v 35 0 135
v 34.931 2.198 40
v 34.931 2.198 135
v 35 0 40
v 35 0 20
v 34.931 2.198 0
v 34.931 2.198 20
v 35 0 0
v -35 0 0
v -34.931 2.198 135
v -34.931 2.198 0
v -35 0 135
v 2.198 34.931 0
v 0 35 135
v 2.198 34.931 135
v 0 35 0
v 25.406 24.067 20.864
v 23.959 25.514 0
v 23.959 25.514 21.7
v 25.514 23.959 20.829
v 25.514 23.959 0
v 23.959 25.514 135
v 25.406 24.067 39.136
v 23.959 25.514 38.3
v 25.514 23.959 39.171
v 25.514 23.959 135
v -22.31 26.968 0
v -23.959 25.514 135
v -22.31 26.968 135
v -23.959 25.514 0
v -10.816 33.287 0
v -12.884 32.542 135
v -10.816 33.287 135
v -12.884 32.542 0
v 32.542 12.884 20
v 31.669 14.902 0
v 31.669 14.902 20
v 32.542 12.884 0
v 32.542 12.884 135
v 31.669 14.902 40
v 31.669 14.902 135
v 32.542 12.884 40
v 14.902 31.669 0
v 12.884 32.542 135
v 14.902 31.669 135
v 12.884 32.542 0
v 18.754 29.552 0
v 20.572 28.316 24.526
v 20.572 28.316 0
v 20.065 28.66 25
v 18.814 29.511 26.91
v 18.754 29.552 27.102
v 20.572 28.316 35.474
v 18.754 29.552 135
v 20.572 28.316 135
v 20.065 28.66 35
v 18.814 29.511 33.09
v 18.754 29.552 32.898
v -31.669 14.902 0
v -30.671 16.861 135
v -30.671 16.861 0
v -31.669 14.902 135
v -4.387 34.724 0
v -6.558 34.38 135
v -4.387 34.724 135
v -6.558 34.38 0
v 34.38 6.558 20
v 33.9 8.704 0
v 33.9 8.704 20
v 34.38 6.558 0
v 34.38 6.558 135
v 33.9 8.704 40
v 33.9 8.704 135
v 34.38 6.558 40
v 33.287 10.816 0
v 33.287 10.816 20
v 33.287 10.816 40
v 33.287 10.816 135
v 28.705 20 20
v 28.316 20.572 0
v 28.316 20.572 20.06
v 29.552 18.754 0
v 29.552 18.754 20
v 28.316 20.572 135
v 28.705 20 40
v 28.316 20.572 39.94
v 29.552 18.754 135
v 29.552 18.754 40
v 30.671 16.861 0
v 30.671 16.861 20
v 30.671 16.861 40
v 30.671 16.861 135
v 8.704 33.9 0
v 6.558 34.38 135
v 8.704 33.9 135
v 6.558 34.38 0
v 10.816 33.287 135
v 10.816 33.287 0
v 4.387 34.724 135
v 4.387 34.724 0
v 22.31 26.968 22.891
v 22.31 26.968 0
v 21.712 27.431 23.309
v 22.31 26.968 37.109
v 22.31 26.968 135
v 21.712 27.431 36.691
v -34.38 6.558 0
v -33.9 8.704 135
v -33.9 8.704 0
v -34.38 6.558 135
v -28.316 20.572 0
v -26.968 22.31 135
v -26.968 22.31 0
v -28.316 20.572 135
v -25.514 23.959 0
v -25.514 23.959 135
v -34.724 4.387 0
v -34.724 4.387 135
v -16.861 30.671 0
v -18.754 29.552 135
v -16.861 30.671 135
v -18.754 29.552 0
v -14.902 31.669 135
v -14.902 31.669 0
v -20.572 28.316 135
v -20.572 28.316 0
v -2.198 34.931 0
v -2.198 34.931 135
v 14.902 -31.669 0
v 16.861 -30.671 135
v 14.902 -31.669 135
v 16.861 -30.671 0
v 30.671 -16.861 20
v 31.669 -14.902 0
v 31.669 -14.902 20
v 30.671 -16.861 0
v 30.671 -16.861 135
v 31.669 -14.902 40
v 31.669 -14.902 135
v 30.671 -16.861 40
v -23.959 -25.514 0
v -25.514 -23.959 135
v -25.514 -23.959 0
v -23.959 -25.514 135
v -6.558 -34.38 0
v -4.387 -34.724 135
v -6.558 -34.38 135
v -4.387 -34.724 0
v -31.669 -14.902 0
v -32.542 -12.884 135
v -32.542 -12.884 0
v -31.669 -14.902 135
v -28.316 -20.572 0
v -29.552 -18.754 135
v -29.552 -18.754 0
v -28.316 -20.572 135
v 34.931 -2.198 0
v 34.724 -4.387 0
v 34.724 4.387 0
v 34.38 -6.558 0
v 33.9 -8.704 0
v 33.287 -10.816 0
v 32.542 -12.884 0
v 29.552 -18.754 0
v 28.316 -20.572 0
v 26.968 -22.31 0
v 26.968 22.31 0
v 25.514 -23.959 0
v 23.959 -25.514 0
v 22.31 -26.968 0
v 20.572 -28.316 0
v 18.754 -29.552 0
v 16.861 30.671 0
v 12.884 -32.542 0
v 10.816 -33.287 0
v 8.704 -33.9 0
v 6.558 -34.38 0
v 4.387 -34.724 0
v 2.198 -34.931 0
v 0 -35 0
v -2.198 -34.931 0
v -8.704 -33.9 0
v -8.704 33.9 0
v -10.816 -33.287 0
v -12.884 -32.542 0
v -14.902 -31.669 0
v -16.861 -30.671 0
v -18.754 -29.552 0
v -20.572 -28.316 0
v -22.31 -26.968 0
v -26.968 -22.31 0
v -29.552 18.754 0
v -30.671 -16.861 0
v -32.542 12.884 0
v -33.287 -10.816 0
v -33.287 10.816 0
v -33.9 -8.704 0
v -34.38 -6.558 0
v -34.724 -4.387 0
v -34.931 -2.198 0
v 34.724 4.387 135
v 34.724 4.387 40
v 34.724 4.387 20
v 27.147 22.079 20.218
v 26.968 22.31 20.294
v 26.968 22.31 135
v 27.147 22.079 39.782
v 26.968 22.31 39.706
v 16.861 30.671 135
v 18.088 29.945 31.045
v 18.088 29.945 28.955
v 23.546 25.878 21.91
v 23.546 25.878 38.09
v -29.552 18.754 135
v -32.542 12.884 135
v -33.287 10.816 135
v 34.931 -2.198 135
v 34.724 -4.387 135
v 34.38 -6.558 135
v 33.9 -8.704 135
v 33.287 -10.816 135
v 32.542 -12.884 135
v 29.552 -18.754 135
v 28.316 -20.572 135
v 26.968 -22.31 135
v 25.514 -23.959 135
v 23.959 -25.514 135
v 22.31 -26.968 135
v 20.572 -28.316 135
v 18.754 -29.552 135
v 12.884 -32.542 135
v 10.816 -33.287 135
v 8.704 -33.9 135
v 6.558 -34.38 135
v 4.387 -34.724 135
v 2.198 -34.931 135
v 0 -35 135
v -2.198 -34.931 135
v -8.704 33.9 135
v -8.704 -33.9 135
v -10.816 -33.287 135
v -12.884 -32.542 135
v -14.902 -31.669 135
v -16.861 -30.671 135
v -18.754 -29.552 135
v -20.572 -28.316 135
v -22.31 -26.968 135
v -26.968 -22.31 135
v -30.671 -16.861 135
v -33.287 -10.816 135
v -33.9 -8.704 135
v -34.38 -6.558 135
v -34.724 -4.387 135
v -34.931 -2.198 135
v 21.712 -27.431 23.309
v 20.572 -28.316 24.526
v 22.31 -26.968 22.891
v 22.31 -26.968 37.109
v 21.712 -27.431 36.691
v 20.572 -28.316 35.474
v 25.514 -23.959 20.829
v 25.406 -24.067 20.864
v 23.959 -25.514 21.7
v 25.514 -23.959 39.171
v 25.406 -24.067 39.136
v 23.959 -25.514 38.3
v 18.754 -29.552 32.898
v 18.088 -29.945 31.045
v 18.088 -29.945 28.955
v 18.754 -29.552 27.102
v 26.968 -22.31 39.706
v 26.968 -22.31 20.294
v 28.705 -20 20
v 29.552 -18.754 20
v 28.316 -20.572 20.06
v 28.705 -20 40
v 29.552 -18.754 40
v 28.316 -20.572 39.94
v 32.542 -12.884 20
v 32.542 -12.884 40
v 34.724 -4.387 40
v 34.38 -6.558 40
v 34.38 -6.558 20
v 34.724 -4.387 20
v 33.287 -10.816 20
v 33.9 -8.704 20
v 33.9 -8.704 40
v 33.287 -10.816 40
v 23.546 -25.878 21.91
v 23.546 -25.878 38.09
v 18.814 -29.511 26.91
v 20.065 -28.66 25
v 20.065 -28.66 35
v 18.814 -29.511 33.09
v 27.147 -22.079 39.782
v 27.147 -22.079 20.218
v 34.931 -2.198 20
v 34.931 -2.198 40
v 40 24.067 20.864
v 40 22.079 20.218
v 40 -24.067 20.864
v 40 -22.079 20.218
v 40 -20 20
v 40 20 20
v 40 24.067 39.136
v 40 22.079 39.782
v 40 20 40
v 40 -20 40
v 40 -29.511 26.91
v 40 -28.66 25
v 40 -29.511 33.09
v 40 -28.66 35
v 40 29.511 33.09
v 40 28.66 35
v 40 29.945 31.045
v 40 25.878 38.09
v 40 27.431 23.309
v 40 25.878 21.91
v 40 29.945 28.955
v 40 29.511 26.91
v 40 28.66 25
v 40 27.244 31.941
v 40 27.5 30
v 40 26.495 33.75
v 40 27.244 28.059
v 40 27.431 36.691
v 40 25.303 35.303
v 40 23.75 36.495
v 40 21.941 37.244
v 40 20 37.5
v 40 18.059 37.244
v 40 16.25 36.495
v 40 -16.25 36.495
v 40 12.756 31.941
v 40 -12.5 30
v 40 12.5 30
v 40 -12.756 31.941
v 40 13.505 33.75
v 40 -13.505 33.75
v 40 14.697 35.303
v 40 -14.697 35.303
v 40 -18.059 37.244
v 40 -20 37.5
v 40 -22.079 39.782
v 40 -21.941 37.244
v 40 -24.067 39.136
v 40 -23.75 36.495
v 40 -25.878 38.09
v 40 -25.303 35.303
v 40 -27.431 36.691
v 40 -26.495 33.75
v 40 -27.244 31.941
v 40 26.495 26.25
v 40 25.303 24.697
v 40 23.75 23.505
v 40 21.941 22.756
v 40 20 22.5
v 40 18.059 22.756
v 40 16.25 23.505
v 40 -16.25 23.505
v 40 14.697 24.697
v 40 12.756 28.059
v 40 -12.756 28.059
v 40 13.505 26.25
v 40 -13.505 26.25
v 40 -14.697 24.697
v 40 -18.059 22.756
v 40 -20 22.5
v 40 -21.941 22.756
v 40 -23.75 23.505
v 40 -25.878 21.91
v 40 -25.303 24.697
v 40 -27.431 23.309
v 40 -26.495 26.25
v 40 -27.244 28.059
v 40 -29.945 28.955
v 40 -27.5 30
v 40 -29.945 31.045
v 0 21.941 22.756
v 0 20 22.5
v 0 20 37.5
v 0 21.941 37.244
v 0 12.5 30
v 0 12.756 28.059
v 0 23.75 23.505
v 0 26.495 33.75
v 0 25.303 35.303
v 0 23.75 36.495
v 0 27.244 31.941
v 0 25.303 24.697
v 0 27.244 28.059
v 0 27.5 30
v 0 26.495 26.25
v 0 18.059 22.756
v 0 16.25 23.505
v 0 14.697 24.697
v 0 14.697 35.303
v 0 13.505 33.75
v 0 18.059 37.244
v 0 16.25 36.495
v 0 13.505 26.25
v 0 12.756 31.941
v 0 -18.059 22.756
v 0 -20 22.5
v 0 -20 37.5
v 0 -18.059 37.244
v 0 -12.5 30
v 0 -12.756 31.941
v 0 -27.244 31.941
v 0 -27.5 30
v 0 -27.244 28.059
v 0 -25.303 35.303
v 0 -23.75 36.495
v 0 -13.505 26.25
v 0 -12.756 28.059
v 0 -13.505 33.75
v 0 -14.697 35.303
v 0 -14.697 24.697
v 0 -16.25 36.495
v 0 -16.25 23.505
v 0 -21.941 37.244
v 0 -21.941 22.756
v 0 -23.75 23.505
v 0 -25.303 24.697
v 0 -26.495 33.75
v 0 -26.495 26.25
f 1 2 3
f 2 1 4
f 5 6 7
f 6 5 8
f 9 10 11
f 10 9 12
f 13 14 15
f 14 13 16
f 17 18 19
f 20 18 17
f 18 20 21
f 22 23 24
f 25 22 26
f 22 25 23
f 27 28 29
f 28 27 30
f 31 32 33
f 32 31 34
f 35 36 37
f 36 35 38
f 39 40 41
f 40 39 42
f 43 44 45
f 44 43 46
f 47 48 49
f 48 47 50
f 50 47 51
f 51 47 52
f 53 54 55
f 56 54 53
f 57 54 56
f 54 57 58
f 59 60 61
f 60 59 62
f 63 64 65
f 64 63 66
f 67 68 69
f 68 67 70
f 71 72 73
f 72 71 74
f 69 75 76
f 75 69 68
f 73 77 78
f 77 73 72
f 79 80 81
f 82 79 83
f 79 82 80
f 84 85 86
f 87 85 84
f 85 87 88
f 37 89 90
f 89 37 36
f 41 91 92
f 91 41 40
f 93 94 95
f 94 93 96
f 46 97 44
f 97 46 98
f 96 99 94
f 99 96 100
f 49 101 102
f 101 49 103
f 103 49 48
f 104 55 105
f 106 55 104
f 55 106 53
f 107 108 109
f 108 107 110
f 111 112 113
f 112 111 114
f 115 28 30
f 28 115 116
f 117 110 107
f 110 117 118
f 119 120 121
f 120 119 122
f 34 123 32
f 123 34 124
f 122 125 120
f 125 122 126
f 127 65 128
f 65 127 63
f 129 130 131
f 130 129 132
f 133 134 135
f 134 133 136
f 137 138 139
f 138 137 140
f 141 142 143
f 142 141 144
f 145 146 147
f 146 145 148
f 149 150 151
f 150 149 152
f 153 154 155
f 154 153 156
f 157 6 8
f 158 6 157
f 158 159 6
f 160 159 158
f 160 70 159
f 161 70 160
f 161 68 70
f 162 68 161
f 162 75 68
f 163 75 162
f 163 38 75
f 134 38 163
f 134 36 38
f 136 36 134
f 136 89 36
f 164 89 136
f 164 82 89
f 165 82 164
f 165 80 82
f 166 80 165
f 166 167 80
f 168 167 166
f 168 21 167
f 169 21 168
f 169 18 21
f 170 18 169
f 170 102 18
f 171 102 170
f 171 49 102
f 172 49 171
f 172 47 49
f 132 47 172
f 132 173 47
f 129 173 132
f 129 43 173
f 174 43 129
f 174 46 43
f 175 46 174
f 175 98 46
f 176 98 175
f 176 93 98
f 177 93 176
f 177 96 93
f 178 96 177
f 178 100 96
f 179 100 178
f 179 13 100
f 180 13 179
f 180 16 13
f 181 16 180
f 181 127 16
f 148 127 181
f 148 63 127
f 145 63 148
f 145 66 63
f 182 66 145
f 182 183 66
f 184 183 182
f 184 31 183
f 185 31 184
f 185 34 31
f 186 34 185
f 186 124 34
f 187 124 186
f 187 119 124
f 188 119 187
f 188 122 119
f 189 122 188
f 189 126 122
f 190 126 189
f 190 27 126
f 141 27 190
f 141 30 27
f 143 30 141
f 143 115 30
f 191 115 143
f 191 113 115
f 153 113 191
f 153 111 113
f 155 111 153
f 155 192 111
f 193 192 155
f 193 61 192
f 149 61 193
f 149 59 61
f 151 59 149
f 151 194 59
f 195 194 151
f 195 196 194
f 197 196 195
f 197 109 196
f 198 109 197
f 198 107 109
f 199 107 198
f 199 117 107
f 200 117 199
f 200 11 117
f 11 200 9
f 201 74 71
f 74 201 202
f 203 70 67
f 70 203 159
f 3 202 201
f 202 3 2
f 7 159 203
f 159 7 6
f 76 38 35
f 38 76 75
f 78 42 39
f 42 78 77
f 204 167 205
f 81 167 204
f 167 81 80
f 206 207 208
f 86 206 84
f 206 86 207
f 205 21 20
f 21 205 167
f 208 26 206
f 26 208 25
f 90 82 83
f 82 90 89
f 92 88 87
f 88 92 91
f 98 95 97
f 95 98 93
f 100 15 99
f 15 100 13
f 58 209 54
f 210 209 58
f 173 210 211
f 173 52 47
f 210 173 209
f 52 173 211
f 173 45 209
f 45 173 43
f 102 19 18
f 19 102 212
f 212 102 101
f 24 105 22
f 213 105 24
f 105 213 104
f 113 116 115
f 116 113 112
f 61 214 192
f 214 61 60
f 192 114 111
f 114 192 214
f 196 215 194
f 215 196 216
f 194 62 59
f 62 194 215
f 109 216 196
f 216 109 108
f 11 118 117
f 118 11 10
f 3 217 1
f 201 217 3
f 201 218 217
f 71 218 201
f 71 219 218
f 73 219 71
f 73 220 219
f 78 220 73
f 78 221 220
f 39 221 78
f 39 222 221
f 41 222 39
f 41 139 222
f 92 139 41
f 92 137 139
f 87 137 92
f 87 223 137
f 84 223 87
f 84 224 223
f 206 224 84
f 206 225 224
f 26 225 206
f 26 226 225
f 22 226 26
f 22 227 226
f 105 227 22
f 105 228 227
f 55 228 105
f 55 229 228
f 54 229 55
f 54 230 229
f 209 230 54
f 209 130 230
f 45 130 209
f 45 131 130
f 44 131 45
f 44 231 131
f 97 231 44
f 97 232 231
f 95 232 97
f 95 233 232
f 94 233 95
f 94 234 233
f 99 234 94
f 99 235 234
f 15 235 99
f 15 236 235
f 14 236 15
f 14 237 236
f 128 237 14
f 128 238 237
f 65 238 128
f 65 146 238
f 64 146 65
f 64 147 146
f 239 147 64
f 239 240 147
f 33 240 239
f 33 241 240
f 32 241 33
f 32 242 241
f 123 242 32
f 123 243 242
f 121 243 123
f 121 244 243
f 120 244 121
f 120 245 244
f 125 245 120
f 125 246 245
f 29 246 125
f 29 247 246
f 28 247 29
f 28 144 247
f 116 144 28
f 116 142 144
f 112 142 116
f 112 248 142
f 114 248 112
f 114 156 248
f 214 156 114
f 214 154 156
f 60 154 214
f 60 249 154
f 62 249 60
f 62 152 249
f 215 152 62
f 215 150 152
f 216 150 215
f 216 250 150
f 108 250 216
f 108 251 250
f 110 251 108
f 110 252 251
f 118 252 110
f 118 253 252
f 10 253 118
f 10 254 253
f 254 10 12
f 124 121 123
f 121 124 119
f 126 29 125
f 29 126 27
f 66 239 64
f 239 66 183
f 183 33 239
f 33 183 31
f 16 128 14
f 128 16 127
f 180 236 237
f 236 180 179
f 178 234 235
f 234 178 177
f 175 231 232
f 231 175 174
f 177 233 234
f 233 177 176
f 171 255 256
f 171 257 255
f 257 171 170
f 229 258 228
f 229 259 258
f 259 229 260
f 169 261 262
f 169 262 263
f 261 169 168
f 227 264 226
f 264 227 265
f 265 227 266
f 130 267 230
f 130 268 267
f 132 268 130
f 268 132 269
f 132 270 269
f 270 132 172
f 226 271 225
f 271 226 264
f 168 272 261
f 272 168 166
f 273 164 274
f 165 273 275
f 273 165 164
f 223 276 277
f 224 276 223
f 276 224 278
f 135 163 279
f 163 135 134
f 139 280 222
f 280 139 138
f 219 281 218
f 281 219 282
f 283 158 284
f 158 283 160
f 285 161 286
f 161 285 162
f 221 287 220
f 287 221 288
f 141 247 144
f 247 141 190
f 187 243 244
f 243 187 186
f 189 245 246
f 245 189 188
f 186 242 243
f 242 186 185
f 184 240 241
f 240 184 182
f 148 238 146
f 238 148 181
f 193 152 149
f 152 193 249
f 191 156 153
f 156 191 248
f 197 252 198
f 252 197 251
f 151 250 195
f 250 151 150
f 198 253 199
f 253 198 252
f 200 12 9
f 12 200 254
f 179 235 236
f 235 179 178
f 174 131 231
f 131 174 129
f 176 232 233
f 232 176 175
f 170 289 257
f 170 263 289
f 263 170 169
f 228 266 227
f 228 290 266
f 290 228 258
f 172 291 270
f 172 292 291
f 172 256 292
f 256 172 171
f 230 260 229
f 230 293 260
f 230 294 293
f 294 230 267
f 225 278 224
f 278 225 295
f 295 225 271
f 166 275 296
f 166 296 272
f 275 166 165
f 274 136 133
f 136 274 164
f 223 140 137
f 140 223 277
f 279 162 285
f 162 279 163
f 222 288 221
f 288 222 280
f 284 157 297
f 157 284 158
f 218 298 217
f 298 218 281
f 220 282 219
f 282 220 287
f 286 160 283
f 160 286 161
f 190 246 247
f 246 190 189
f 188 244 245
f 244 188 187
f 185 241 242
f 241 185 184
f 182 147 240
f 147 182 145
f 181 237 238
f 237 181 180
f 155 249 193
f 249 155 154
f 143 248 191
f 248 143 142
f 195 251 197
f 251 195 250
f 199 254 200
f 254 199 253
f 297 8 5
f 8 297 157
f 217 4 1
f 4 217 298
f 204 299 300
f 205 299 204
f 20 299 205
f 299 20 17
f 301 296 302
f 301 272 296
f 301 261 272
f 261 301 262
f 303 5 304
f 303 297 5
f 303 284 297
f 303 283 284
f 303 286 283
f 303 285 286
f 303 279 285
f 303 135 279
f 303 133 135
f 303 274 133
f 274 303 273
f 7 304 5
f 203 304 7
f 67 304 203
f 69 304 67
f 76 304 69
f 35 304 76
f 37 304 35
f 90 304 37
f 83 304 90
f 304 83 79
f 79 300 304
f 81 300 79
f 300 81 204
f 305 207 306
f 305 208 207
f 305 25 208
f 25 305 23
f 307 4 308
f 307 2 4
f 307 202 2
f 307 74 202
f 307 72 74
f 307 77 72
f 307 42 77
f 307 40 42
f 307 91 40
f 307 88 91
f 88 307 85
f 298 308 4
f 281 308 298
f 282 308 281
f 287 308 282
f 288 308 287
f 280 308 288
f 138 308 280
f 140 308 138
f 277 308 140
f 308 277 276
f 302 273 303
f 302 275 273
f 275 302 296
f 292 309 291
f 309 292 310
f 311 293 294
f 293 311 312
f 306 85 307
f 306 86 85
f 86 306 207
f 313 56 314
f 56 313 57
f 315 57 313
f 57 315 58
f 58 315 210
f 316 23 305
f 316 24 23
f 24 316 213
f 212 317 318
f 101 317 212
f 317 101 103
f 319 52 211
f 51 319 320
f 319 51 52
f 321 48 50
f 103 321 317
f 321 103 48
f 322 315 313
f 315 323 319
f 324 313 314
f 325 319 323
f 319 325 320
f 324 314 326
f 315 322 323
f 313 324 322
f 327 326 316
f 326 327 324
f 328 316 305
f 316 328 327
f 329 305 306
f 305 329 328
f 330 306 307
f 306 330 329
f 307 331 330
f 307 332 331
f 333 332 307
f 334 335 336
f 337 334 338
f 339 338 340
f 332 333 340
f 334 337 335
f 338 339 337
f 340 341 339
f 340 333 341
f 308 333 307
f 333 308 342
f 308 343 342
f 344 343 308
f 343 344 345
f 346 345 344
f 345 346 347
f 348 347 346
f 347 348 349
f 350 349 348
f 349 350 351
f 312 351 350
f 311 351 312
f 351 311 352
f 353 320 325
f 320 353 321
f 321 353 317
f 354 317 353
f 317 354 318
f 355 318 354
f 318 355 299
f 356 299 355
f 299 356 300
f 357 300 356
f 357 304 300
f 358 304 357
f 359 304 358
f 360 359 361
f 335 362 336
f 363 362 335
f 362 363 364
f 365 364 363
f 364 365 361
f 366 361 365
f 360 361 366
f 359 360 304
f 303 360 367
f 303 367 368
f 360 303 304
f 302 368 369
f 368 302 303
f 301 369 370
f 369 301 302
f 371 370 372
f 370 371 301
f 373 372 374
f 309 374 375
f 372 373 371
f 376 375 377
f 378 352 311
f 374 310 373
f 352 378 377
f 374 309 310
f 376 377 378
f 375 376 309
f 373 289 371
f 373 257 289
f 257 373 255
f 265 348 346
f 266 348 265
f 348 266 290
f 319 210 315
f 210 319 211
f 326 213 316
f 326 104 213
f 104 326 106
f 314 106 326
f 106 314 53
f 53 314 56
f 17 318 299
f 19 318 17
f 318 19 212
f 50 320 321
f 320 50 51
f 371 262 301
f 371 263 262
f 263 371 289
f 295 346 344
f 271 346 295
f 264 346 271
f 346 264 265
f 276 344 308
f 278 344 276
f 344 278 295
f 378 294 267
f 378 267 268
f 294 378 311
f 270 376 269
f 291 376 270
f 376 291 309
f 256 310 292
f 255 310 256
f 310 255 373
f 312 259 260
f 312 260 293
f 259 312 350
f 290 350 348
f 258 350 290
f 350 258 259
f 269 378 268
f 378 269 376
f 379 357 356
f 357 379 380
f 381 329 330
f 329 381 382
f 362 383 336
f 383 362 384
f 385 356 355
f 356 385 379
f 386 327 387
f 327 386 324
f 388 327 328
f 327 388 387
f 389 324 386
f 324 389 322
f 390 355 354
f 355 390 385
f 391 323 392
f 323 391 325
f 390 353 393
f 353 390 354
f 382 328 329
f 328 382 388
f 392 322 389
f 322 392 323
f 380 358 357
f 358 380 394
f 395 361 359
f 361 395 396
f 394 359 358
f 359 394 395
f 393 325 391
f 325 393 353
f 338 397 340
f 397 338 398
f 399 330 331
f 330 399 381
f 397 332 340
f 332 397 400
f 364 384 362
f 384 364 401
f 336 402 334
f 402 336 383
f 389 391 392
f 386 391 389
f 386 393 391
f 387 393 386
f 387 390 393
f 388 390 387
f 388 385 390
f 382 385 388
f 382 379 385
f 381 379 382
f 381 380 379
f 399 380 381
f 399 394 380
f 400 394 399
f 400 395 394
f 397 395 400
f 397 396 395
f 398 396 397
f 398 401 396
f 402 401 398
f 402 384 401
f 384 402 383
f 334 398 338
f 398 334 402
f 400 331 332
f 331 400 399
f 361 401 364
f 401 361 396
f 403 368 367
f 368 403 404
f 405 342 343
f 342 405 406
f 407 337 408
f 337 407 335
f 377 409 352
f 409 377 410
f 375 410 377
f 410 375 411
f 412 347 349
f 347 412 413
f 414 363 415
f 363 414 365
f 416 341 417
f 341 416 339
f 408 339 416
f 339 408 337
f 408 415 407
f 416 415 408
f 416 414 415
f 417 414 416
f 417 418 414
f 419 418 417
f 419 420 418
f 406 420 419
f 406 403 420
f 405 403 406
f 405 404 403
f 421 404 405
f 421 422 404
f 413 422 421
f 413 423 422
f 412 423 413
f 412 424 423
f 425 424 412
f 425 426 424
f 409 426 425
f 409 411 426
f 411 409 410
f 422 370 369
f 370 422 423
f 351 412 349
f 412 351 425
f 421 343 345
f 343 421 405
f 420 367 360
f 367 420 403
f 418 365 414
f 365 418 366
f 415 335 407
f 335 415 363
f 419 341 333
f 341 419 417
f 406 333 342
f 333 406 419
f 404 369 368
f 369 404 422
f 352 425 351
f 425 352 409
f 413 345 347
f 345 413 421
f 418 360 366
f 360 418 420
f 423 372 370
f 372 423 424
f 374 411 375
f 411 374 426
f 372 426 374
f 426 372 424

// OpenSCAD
// file: ../../parameters.scad
//|==========================================|//
//|               CLOUD CHAMBER              |//
//|==========================================|//


//========== SCREWS ==========//

//Screw diameter and nut for M10 [mm]
M10_screw_diameter=10.4;
M10_head_height = 10;
M10_head_diameter = 16+0.5;
M10_nut_height = 10.5;
M10_nut_diameter = 25.5;
M10_nut_pocket = 22.3;

//Screw diameter and nut for M8 [mm]
M8_screw_diameter = 8 + 1;
M8_head_height = 8;
M8_head_diameter = 13.5;
M8_nut_height = 7.5;
M8_nut_diameter = 14.4 + 0.5;
M8_nut_pocket = 13 + 0.5;

//Screw diameter and nut for M6 [mm]
M6_screw_diameter=6.5;
M6_head_diameter = 10+0.5;
M6_head_height = 6;
M6_nut_height = 4.9;
M6_nut_diameter = 11.8;
M6_nut_pocket = 10.4;

//Screw diameter and nut for M5 [mm]
M5_screw_diameter=5.5;
M5_head_height = 5;
M5_head_diameter = 13+0.5;
M5_nut_height = 4.5;
M5_nut_diameter = 9.4;
M5_nut_pocket = 8.4;

//Screw diameter and nut for M4 [mm]
M4_screw_diameter=4.5;
M4_screw_head_height = 4;
M4_nut_height = 3.2;
M4_nut_diameter = 8.4;
M4_nut_pocket = 7.5;

//Screw diameter and nut for M3 [mm]
M3_screw_diameter = 3.2;
M3_nut_height = 2.7;
M3_nut_diameter = 6.6;
M3_screw_head_height = 3;
M3_nut_pocket = 5.6;

//Screw diameter and nut for M2,5 [mm]
M2_5_screw_diameter = 2.7;
M2_5_nut_height = 2.3;
M2_5_nut_diameter = 6;
M2_5_nut_pocket = 5.1;


//========== CHAMBER ==========//

//observation_surface_x
observation_surface_x = 200.5;
observation_surface_y = 100.5;

//cooper block
cooper_block_x = 200;
cooper_block_y = 100;
cooper_block_thickness = 8;

//chamber frame
chamber_width = 400;
chamber_deepth = 350;
chamber_height = 250;

//service door
door_width = 200;

//peltiers
peltier_size_x = 40;
peltier_size_y = 40;
peltier_thickness = 2.9;
peltier_cable_diameter = 4;

//water ALU block
water_block_width = 40;
water_block_length = 120;
water_block_thickness = 12.5;

//hose
hose_outer_diameter = 10;
hose_inner_diameter = 8;

//nextion display 2.8"
nextion_board_width = 85;
nextion_board_height = 50;
nextion_board_thickness = 1.6;
nextion_display_width = 69.5;
nextion_display_height = 50;
nextion_thickness = 7;
nextion_screw_diameter = M2_5_screw_diameter;
nextion_screw_width_distance = 78.5;
nextion_screw_height_distance = 49;


//========== ALU PROFILES ==========//

//30x30 profile
ALU30_size = 30;
ALU30_groove = 8;

//20x20 profile
ALU20_size = 20;
ALU20_groove = 6;


//========== ELECTRONIC DEVICE ==========//

//TO-92 package
TO92_width = 4.6;
TO92_height = 4.6;
TO92_thickness = 3.9;
TO92_pins = 14.5;
TO92_bottom_to_pins = 1;

//========== COOLING CIRCUIT ==========//

//pump
pump_diameter = 70;
pump_height = 135;
pump_in_out_distance = 40;
pump_in_out_diameter = 20;
pump_in_out_inner_diameter = 15;
pump_in_out_height = 30;
pump_in_out_overlap = 5;
// main file
include <../../parameters.scad>

module pump() {
    difference() {
        union() {
            cylinder(d=pump_diameter, h=pump_height, $fn=100);

            hull() {
                translate([0, pump_in_out_distance/2, pump_in_out_height])
                    rotate([0, 90, 0])
                        cylinder(d=pump_in_out_diameter, h=pump_diameter/2+pump_in_out_overlap);
                translate([0, pump_in_out_distance/-2, pump_in_out_height])
                    rotate([0, 90, 0])
                        cylinder(d=pump_in_out_diameter, h=pump_diameter/2+pump_in_out_overlap);
            }
        }

        translate([0, pump_in_out_distance/2, pump_in_out_height])
            rotate([0, 90, 0])
                cylinder(d=pump_in_out_inner_diameter, h=pump_diameter/2+pump_in_out_overlap+0.1);

        translate([0, pump_in_out_distance/-2, pump_in_out_height])
            rotate([0, 90, 0])
                cylinder(d=pump_in_out_inner_diameter, h=pump_diameter/2+pump_in_out_overlap+0.1);
    }
}

pump();
